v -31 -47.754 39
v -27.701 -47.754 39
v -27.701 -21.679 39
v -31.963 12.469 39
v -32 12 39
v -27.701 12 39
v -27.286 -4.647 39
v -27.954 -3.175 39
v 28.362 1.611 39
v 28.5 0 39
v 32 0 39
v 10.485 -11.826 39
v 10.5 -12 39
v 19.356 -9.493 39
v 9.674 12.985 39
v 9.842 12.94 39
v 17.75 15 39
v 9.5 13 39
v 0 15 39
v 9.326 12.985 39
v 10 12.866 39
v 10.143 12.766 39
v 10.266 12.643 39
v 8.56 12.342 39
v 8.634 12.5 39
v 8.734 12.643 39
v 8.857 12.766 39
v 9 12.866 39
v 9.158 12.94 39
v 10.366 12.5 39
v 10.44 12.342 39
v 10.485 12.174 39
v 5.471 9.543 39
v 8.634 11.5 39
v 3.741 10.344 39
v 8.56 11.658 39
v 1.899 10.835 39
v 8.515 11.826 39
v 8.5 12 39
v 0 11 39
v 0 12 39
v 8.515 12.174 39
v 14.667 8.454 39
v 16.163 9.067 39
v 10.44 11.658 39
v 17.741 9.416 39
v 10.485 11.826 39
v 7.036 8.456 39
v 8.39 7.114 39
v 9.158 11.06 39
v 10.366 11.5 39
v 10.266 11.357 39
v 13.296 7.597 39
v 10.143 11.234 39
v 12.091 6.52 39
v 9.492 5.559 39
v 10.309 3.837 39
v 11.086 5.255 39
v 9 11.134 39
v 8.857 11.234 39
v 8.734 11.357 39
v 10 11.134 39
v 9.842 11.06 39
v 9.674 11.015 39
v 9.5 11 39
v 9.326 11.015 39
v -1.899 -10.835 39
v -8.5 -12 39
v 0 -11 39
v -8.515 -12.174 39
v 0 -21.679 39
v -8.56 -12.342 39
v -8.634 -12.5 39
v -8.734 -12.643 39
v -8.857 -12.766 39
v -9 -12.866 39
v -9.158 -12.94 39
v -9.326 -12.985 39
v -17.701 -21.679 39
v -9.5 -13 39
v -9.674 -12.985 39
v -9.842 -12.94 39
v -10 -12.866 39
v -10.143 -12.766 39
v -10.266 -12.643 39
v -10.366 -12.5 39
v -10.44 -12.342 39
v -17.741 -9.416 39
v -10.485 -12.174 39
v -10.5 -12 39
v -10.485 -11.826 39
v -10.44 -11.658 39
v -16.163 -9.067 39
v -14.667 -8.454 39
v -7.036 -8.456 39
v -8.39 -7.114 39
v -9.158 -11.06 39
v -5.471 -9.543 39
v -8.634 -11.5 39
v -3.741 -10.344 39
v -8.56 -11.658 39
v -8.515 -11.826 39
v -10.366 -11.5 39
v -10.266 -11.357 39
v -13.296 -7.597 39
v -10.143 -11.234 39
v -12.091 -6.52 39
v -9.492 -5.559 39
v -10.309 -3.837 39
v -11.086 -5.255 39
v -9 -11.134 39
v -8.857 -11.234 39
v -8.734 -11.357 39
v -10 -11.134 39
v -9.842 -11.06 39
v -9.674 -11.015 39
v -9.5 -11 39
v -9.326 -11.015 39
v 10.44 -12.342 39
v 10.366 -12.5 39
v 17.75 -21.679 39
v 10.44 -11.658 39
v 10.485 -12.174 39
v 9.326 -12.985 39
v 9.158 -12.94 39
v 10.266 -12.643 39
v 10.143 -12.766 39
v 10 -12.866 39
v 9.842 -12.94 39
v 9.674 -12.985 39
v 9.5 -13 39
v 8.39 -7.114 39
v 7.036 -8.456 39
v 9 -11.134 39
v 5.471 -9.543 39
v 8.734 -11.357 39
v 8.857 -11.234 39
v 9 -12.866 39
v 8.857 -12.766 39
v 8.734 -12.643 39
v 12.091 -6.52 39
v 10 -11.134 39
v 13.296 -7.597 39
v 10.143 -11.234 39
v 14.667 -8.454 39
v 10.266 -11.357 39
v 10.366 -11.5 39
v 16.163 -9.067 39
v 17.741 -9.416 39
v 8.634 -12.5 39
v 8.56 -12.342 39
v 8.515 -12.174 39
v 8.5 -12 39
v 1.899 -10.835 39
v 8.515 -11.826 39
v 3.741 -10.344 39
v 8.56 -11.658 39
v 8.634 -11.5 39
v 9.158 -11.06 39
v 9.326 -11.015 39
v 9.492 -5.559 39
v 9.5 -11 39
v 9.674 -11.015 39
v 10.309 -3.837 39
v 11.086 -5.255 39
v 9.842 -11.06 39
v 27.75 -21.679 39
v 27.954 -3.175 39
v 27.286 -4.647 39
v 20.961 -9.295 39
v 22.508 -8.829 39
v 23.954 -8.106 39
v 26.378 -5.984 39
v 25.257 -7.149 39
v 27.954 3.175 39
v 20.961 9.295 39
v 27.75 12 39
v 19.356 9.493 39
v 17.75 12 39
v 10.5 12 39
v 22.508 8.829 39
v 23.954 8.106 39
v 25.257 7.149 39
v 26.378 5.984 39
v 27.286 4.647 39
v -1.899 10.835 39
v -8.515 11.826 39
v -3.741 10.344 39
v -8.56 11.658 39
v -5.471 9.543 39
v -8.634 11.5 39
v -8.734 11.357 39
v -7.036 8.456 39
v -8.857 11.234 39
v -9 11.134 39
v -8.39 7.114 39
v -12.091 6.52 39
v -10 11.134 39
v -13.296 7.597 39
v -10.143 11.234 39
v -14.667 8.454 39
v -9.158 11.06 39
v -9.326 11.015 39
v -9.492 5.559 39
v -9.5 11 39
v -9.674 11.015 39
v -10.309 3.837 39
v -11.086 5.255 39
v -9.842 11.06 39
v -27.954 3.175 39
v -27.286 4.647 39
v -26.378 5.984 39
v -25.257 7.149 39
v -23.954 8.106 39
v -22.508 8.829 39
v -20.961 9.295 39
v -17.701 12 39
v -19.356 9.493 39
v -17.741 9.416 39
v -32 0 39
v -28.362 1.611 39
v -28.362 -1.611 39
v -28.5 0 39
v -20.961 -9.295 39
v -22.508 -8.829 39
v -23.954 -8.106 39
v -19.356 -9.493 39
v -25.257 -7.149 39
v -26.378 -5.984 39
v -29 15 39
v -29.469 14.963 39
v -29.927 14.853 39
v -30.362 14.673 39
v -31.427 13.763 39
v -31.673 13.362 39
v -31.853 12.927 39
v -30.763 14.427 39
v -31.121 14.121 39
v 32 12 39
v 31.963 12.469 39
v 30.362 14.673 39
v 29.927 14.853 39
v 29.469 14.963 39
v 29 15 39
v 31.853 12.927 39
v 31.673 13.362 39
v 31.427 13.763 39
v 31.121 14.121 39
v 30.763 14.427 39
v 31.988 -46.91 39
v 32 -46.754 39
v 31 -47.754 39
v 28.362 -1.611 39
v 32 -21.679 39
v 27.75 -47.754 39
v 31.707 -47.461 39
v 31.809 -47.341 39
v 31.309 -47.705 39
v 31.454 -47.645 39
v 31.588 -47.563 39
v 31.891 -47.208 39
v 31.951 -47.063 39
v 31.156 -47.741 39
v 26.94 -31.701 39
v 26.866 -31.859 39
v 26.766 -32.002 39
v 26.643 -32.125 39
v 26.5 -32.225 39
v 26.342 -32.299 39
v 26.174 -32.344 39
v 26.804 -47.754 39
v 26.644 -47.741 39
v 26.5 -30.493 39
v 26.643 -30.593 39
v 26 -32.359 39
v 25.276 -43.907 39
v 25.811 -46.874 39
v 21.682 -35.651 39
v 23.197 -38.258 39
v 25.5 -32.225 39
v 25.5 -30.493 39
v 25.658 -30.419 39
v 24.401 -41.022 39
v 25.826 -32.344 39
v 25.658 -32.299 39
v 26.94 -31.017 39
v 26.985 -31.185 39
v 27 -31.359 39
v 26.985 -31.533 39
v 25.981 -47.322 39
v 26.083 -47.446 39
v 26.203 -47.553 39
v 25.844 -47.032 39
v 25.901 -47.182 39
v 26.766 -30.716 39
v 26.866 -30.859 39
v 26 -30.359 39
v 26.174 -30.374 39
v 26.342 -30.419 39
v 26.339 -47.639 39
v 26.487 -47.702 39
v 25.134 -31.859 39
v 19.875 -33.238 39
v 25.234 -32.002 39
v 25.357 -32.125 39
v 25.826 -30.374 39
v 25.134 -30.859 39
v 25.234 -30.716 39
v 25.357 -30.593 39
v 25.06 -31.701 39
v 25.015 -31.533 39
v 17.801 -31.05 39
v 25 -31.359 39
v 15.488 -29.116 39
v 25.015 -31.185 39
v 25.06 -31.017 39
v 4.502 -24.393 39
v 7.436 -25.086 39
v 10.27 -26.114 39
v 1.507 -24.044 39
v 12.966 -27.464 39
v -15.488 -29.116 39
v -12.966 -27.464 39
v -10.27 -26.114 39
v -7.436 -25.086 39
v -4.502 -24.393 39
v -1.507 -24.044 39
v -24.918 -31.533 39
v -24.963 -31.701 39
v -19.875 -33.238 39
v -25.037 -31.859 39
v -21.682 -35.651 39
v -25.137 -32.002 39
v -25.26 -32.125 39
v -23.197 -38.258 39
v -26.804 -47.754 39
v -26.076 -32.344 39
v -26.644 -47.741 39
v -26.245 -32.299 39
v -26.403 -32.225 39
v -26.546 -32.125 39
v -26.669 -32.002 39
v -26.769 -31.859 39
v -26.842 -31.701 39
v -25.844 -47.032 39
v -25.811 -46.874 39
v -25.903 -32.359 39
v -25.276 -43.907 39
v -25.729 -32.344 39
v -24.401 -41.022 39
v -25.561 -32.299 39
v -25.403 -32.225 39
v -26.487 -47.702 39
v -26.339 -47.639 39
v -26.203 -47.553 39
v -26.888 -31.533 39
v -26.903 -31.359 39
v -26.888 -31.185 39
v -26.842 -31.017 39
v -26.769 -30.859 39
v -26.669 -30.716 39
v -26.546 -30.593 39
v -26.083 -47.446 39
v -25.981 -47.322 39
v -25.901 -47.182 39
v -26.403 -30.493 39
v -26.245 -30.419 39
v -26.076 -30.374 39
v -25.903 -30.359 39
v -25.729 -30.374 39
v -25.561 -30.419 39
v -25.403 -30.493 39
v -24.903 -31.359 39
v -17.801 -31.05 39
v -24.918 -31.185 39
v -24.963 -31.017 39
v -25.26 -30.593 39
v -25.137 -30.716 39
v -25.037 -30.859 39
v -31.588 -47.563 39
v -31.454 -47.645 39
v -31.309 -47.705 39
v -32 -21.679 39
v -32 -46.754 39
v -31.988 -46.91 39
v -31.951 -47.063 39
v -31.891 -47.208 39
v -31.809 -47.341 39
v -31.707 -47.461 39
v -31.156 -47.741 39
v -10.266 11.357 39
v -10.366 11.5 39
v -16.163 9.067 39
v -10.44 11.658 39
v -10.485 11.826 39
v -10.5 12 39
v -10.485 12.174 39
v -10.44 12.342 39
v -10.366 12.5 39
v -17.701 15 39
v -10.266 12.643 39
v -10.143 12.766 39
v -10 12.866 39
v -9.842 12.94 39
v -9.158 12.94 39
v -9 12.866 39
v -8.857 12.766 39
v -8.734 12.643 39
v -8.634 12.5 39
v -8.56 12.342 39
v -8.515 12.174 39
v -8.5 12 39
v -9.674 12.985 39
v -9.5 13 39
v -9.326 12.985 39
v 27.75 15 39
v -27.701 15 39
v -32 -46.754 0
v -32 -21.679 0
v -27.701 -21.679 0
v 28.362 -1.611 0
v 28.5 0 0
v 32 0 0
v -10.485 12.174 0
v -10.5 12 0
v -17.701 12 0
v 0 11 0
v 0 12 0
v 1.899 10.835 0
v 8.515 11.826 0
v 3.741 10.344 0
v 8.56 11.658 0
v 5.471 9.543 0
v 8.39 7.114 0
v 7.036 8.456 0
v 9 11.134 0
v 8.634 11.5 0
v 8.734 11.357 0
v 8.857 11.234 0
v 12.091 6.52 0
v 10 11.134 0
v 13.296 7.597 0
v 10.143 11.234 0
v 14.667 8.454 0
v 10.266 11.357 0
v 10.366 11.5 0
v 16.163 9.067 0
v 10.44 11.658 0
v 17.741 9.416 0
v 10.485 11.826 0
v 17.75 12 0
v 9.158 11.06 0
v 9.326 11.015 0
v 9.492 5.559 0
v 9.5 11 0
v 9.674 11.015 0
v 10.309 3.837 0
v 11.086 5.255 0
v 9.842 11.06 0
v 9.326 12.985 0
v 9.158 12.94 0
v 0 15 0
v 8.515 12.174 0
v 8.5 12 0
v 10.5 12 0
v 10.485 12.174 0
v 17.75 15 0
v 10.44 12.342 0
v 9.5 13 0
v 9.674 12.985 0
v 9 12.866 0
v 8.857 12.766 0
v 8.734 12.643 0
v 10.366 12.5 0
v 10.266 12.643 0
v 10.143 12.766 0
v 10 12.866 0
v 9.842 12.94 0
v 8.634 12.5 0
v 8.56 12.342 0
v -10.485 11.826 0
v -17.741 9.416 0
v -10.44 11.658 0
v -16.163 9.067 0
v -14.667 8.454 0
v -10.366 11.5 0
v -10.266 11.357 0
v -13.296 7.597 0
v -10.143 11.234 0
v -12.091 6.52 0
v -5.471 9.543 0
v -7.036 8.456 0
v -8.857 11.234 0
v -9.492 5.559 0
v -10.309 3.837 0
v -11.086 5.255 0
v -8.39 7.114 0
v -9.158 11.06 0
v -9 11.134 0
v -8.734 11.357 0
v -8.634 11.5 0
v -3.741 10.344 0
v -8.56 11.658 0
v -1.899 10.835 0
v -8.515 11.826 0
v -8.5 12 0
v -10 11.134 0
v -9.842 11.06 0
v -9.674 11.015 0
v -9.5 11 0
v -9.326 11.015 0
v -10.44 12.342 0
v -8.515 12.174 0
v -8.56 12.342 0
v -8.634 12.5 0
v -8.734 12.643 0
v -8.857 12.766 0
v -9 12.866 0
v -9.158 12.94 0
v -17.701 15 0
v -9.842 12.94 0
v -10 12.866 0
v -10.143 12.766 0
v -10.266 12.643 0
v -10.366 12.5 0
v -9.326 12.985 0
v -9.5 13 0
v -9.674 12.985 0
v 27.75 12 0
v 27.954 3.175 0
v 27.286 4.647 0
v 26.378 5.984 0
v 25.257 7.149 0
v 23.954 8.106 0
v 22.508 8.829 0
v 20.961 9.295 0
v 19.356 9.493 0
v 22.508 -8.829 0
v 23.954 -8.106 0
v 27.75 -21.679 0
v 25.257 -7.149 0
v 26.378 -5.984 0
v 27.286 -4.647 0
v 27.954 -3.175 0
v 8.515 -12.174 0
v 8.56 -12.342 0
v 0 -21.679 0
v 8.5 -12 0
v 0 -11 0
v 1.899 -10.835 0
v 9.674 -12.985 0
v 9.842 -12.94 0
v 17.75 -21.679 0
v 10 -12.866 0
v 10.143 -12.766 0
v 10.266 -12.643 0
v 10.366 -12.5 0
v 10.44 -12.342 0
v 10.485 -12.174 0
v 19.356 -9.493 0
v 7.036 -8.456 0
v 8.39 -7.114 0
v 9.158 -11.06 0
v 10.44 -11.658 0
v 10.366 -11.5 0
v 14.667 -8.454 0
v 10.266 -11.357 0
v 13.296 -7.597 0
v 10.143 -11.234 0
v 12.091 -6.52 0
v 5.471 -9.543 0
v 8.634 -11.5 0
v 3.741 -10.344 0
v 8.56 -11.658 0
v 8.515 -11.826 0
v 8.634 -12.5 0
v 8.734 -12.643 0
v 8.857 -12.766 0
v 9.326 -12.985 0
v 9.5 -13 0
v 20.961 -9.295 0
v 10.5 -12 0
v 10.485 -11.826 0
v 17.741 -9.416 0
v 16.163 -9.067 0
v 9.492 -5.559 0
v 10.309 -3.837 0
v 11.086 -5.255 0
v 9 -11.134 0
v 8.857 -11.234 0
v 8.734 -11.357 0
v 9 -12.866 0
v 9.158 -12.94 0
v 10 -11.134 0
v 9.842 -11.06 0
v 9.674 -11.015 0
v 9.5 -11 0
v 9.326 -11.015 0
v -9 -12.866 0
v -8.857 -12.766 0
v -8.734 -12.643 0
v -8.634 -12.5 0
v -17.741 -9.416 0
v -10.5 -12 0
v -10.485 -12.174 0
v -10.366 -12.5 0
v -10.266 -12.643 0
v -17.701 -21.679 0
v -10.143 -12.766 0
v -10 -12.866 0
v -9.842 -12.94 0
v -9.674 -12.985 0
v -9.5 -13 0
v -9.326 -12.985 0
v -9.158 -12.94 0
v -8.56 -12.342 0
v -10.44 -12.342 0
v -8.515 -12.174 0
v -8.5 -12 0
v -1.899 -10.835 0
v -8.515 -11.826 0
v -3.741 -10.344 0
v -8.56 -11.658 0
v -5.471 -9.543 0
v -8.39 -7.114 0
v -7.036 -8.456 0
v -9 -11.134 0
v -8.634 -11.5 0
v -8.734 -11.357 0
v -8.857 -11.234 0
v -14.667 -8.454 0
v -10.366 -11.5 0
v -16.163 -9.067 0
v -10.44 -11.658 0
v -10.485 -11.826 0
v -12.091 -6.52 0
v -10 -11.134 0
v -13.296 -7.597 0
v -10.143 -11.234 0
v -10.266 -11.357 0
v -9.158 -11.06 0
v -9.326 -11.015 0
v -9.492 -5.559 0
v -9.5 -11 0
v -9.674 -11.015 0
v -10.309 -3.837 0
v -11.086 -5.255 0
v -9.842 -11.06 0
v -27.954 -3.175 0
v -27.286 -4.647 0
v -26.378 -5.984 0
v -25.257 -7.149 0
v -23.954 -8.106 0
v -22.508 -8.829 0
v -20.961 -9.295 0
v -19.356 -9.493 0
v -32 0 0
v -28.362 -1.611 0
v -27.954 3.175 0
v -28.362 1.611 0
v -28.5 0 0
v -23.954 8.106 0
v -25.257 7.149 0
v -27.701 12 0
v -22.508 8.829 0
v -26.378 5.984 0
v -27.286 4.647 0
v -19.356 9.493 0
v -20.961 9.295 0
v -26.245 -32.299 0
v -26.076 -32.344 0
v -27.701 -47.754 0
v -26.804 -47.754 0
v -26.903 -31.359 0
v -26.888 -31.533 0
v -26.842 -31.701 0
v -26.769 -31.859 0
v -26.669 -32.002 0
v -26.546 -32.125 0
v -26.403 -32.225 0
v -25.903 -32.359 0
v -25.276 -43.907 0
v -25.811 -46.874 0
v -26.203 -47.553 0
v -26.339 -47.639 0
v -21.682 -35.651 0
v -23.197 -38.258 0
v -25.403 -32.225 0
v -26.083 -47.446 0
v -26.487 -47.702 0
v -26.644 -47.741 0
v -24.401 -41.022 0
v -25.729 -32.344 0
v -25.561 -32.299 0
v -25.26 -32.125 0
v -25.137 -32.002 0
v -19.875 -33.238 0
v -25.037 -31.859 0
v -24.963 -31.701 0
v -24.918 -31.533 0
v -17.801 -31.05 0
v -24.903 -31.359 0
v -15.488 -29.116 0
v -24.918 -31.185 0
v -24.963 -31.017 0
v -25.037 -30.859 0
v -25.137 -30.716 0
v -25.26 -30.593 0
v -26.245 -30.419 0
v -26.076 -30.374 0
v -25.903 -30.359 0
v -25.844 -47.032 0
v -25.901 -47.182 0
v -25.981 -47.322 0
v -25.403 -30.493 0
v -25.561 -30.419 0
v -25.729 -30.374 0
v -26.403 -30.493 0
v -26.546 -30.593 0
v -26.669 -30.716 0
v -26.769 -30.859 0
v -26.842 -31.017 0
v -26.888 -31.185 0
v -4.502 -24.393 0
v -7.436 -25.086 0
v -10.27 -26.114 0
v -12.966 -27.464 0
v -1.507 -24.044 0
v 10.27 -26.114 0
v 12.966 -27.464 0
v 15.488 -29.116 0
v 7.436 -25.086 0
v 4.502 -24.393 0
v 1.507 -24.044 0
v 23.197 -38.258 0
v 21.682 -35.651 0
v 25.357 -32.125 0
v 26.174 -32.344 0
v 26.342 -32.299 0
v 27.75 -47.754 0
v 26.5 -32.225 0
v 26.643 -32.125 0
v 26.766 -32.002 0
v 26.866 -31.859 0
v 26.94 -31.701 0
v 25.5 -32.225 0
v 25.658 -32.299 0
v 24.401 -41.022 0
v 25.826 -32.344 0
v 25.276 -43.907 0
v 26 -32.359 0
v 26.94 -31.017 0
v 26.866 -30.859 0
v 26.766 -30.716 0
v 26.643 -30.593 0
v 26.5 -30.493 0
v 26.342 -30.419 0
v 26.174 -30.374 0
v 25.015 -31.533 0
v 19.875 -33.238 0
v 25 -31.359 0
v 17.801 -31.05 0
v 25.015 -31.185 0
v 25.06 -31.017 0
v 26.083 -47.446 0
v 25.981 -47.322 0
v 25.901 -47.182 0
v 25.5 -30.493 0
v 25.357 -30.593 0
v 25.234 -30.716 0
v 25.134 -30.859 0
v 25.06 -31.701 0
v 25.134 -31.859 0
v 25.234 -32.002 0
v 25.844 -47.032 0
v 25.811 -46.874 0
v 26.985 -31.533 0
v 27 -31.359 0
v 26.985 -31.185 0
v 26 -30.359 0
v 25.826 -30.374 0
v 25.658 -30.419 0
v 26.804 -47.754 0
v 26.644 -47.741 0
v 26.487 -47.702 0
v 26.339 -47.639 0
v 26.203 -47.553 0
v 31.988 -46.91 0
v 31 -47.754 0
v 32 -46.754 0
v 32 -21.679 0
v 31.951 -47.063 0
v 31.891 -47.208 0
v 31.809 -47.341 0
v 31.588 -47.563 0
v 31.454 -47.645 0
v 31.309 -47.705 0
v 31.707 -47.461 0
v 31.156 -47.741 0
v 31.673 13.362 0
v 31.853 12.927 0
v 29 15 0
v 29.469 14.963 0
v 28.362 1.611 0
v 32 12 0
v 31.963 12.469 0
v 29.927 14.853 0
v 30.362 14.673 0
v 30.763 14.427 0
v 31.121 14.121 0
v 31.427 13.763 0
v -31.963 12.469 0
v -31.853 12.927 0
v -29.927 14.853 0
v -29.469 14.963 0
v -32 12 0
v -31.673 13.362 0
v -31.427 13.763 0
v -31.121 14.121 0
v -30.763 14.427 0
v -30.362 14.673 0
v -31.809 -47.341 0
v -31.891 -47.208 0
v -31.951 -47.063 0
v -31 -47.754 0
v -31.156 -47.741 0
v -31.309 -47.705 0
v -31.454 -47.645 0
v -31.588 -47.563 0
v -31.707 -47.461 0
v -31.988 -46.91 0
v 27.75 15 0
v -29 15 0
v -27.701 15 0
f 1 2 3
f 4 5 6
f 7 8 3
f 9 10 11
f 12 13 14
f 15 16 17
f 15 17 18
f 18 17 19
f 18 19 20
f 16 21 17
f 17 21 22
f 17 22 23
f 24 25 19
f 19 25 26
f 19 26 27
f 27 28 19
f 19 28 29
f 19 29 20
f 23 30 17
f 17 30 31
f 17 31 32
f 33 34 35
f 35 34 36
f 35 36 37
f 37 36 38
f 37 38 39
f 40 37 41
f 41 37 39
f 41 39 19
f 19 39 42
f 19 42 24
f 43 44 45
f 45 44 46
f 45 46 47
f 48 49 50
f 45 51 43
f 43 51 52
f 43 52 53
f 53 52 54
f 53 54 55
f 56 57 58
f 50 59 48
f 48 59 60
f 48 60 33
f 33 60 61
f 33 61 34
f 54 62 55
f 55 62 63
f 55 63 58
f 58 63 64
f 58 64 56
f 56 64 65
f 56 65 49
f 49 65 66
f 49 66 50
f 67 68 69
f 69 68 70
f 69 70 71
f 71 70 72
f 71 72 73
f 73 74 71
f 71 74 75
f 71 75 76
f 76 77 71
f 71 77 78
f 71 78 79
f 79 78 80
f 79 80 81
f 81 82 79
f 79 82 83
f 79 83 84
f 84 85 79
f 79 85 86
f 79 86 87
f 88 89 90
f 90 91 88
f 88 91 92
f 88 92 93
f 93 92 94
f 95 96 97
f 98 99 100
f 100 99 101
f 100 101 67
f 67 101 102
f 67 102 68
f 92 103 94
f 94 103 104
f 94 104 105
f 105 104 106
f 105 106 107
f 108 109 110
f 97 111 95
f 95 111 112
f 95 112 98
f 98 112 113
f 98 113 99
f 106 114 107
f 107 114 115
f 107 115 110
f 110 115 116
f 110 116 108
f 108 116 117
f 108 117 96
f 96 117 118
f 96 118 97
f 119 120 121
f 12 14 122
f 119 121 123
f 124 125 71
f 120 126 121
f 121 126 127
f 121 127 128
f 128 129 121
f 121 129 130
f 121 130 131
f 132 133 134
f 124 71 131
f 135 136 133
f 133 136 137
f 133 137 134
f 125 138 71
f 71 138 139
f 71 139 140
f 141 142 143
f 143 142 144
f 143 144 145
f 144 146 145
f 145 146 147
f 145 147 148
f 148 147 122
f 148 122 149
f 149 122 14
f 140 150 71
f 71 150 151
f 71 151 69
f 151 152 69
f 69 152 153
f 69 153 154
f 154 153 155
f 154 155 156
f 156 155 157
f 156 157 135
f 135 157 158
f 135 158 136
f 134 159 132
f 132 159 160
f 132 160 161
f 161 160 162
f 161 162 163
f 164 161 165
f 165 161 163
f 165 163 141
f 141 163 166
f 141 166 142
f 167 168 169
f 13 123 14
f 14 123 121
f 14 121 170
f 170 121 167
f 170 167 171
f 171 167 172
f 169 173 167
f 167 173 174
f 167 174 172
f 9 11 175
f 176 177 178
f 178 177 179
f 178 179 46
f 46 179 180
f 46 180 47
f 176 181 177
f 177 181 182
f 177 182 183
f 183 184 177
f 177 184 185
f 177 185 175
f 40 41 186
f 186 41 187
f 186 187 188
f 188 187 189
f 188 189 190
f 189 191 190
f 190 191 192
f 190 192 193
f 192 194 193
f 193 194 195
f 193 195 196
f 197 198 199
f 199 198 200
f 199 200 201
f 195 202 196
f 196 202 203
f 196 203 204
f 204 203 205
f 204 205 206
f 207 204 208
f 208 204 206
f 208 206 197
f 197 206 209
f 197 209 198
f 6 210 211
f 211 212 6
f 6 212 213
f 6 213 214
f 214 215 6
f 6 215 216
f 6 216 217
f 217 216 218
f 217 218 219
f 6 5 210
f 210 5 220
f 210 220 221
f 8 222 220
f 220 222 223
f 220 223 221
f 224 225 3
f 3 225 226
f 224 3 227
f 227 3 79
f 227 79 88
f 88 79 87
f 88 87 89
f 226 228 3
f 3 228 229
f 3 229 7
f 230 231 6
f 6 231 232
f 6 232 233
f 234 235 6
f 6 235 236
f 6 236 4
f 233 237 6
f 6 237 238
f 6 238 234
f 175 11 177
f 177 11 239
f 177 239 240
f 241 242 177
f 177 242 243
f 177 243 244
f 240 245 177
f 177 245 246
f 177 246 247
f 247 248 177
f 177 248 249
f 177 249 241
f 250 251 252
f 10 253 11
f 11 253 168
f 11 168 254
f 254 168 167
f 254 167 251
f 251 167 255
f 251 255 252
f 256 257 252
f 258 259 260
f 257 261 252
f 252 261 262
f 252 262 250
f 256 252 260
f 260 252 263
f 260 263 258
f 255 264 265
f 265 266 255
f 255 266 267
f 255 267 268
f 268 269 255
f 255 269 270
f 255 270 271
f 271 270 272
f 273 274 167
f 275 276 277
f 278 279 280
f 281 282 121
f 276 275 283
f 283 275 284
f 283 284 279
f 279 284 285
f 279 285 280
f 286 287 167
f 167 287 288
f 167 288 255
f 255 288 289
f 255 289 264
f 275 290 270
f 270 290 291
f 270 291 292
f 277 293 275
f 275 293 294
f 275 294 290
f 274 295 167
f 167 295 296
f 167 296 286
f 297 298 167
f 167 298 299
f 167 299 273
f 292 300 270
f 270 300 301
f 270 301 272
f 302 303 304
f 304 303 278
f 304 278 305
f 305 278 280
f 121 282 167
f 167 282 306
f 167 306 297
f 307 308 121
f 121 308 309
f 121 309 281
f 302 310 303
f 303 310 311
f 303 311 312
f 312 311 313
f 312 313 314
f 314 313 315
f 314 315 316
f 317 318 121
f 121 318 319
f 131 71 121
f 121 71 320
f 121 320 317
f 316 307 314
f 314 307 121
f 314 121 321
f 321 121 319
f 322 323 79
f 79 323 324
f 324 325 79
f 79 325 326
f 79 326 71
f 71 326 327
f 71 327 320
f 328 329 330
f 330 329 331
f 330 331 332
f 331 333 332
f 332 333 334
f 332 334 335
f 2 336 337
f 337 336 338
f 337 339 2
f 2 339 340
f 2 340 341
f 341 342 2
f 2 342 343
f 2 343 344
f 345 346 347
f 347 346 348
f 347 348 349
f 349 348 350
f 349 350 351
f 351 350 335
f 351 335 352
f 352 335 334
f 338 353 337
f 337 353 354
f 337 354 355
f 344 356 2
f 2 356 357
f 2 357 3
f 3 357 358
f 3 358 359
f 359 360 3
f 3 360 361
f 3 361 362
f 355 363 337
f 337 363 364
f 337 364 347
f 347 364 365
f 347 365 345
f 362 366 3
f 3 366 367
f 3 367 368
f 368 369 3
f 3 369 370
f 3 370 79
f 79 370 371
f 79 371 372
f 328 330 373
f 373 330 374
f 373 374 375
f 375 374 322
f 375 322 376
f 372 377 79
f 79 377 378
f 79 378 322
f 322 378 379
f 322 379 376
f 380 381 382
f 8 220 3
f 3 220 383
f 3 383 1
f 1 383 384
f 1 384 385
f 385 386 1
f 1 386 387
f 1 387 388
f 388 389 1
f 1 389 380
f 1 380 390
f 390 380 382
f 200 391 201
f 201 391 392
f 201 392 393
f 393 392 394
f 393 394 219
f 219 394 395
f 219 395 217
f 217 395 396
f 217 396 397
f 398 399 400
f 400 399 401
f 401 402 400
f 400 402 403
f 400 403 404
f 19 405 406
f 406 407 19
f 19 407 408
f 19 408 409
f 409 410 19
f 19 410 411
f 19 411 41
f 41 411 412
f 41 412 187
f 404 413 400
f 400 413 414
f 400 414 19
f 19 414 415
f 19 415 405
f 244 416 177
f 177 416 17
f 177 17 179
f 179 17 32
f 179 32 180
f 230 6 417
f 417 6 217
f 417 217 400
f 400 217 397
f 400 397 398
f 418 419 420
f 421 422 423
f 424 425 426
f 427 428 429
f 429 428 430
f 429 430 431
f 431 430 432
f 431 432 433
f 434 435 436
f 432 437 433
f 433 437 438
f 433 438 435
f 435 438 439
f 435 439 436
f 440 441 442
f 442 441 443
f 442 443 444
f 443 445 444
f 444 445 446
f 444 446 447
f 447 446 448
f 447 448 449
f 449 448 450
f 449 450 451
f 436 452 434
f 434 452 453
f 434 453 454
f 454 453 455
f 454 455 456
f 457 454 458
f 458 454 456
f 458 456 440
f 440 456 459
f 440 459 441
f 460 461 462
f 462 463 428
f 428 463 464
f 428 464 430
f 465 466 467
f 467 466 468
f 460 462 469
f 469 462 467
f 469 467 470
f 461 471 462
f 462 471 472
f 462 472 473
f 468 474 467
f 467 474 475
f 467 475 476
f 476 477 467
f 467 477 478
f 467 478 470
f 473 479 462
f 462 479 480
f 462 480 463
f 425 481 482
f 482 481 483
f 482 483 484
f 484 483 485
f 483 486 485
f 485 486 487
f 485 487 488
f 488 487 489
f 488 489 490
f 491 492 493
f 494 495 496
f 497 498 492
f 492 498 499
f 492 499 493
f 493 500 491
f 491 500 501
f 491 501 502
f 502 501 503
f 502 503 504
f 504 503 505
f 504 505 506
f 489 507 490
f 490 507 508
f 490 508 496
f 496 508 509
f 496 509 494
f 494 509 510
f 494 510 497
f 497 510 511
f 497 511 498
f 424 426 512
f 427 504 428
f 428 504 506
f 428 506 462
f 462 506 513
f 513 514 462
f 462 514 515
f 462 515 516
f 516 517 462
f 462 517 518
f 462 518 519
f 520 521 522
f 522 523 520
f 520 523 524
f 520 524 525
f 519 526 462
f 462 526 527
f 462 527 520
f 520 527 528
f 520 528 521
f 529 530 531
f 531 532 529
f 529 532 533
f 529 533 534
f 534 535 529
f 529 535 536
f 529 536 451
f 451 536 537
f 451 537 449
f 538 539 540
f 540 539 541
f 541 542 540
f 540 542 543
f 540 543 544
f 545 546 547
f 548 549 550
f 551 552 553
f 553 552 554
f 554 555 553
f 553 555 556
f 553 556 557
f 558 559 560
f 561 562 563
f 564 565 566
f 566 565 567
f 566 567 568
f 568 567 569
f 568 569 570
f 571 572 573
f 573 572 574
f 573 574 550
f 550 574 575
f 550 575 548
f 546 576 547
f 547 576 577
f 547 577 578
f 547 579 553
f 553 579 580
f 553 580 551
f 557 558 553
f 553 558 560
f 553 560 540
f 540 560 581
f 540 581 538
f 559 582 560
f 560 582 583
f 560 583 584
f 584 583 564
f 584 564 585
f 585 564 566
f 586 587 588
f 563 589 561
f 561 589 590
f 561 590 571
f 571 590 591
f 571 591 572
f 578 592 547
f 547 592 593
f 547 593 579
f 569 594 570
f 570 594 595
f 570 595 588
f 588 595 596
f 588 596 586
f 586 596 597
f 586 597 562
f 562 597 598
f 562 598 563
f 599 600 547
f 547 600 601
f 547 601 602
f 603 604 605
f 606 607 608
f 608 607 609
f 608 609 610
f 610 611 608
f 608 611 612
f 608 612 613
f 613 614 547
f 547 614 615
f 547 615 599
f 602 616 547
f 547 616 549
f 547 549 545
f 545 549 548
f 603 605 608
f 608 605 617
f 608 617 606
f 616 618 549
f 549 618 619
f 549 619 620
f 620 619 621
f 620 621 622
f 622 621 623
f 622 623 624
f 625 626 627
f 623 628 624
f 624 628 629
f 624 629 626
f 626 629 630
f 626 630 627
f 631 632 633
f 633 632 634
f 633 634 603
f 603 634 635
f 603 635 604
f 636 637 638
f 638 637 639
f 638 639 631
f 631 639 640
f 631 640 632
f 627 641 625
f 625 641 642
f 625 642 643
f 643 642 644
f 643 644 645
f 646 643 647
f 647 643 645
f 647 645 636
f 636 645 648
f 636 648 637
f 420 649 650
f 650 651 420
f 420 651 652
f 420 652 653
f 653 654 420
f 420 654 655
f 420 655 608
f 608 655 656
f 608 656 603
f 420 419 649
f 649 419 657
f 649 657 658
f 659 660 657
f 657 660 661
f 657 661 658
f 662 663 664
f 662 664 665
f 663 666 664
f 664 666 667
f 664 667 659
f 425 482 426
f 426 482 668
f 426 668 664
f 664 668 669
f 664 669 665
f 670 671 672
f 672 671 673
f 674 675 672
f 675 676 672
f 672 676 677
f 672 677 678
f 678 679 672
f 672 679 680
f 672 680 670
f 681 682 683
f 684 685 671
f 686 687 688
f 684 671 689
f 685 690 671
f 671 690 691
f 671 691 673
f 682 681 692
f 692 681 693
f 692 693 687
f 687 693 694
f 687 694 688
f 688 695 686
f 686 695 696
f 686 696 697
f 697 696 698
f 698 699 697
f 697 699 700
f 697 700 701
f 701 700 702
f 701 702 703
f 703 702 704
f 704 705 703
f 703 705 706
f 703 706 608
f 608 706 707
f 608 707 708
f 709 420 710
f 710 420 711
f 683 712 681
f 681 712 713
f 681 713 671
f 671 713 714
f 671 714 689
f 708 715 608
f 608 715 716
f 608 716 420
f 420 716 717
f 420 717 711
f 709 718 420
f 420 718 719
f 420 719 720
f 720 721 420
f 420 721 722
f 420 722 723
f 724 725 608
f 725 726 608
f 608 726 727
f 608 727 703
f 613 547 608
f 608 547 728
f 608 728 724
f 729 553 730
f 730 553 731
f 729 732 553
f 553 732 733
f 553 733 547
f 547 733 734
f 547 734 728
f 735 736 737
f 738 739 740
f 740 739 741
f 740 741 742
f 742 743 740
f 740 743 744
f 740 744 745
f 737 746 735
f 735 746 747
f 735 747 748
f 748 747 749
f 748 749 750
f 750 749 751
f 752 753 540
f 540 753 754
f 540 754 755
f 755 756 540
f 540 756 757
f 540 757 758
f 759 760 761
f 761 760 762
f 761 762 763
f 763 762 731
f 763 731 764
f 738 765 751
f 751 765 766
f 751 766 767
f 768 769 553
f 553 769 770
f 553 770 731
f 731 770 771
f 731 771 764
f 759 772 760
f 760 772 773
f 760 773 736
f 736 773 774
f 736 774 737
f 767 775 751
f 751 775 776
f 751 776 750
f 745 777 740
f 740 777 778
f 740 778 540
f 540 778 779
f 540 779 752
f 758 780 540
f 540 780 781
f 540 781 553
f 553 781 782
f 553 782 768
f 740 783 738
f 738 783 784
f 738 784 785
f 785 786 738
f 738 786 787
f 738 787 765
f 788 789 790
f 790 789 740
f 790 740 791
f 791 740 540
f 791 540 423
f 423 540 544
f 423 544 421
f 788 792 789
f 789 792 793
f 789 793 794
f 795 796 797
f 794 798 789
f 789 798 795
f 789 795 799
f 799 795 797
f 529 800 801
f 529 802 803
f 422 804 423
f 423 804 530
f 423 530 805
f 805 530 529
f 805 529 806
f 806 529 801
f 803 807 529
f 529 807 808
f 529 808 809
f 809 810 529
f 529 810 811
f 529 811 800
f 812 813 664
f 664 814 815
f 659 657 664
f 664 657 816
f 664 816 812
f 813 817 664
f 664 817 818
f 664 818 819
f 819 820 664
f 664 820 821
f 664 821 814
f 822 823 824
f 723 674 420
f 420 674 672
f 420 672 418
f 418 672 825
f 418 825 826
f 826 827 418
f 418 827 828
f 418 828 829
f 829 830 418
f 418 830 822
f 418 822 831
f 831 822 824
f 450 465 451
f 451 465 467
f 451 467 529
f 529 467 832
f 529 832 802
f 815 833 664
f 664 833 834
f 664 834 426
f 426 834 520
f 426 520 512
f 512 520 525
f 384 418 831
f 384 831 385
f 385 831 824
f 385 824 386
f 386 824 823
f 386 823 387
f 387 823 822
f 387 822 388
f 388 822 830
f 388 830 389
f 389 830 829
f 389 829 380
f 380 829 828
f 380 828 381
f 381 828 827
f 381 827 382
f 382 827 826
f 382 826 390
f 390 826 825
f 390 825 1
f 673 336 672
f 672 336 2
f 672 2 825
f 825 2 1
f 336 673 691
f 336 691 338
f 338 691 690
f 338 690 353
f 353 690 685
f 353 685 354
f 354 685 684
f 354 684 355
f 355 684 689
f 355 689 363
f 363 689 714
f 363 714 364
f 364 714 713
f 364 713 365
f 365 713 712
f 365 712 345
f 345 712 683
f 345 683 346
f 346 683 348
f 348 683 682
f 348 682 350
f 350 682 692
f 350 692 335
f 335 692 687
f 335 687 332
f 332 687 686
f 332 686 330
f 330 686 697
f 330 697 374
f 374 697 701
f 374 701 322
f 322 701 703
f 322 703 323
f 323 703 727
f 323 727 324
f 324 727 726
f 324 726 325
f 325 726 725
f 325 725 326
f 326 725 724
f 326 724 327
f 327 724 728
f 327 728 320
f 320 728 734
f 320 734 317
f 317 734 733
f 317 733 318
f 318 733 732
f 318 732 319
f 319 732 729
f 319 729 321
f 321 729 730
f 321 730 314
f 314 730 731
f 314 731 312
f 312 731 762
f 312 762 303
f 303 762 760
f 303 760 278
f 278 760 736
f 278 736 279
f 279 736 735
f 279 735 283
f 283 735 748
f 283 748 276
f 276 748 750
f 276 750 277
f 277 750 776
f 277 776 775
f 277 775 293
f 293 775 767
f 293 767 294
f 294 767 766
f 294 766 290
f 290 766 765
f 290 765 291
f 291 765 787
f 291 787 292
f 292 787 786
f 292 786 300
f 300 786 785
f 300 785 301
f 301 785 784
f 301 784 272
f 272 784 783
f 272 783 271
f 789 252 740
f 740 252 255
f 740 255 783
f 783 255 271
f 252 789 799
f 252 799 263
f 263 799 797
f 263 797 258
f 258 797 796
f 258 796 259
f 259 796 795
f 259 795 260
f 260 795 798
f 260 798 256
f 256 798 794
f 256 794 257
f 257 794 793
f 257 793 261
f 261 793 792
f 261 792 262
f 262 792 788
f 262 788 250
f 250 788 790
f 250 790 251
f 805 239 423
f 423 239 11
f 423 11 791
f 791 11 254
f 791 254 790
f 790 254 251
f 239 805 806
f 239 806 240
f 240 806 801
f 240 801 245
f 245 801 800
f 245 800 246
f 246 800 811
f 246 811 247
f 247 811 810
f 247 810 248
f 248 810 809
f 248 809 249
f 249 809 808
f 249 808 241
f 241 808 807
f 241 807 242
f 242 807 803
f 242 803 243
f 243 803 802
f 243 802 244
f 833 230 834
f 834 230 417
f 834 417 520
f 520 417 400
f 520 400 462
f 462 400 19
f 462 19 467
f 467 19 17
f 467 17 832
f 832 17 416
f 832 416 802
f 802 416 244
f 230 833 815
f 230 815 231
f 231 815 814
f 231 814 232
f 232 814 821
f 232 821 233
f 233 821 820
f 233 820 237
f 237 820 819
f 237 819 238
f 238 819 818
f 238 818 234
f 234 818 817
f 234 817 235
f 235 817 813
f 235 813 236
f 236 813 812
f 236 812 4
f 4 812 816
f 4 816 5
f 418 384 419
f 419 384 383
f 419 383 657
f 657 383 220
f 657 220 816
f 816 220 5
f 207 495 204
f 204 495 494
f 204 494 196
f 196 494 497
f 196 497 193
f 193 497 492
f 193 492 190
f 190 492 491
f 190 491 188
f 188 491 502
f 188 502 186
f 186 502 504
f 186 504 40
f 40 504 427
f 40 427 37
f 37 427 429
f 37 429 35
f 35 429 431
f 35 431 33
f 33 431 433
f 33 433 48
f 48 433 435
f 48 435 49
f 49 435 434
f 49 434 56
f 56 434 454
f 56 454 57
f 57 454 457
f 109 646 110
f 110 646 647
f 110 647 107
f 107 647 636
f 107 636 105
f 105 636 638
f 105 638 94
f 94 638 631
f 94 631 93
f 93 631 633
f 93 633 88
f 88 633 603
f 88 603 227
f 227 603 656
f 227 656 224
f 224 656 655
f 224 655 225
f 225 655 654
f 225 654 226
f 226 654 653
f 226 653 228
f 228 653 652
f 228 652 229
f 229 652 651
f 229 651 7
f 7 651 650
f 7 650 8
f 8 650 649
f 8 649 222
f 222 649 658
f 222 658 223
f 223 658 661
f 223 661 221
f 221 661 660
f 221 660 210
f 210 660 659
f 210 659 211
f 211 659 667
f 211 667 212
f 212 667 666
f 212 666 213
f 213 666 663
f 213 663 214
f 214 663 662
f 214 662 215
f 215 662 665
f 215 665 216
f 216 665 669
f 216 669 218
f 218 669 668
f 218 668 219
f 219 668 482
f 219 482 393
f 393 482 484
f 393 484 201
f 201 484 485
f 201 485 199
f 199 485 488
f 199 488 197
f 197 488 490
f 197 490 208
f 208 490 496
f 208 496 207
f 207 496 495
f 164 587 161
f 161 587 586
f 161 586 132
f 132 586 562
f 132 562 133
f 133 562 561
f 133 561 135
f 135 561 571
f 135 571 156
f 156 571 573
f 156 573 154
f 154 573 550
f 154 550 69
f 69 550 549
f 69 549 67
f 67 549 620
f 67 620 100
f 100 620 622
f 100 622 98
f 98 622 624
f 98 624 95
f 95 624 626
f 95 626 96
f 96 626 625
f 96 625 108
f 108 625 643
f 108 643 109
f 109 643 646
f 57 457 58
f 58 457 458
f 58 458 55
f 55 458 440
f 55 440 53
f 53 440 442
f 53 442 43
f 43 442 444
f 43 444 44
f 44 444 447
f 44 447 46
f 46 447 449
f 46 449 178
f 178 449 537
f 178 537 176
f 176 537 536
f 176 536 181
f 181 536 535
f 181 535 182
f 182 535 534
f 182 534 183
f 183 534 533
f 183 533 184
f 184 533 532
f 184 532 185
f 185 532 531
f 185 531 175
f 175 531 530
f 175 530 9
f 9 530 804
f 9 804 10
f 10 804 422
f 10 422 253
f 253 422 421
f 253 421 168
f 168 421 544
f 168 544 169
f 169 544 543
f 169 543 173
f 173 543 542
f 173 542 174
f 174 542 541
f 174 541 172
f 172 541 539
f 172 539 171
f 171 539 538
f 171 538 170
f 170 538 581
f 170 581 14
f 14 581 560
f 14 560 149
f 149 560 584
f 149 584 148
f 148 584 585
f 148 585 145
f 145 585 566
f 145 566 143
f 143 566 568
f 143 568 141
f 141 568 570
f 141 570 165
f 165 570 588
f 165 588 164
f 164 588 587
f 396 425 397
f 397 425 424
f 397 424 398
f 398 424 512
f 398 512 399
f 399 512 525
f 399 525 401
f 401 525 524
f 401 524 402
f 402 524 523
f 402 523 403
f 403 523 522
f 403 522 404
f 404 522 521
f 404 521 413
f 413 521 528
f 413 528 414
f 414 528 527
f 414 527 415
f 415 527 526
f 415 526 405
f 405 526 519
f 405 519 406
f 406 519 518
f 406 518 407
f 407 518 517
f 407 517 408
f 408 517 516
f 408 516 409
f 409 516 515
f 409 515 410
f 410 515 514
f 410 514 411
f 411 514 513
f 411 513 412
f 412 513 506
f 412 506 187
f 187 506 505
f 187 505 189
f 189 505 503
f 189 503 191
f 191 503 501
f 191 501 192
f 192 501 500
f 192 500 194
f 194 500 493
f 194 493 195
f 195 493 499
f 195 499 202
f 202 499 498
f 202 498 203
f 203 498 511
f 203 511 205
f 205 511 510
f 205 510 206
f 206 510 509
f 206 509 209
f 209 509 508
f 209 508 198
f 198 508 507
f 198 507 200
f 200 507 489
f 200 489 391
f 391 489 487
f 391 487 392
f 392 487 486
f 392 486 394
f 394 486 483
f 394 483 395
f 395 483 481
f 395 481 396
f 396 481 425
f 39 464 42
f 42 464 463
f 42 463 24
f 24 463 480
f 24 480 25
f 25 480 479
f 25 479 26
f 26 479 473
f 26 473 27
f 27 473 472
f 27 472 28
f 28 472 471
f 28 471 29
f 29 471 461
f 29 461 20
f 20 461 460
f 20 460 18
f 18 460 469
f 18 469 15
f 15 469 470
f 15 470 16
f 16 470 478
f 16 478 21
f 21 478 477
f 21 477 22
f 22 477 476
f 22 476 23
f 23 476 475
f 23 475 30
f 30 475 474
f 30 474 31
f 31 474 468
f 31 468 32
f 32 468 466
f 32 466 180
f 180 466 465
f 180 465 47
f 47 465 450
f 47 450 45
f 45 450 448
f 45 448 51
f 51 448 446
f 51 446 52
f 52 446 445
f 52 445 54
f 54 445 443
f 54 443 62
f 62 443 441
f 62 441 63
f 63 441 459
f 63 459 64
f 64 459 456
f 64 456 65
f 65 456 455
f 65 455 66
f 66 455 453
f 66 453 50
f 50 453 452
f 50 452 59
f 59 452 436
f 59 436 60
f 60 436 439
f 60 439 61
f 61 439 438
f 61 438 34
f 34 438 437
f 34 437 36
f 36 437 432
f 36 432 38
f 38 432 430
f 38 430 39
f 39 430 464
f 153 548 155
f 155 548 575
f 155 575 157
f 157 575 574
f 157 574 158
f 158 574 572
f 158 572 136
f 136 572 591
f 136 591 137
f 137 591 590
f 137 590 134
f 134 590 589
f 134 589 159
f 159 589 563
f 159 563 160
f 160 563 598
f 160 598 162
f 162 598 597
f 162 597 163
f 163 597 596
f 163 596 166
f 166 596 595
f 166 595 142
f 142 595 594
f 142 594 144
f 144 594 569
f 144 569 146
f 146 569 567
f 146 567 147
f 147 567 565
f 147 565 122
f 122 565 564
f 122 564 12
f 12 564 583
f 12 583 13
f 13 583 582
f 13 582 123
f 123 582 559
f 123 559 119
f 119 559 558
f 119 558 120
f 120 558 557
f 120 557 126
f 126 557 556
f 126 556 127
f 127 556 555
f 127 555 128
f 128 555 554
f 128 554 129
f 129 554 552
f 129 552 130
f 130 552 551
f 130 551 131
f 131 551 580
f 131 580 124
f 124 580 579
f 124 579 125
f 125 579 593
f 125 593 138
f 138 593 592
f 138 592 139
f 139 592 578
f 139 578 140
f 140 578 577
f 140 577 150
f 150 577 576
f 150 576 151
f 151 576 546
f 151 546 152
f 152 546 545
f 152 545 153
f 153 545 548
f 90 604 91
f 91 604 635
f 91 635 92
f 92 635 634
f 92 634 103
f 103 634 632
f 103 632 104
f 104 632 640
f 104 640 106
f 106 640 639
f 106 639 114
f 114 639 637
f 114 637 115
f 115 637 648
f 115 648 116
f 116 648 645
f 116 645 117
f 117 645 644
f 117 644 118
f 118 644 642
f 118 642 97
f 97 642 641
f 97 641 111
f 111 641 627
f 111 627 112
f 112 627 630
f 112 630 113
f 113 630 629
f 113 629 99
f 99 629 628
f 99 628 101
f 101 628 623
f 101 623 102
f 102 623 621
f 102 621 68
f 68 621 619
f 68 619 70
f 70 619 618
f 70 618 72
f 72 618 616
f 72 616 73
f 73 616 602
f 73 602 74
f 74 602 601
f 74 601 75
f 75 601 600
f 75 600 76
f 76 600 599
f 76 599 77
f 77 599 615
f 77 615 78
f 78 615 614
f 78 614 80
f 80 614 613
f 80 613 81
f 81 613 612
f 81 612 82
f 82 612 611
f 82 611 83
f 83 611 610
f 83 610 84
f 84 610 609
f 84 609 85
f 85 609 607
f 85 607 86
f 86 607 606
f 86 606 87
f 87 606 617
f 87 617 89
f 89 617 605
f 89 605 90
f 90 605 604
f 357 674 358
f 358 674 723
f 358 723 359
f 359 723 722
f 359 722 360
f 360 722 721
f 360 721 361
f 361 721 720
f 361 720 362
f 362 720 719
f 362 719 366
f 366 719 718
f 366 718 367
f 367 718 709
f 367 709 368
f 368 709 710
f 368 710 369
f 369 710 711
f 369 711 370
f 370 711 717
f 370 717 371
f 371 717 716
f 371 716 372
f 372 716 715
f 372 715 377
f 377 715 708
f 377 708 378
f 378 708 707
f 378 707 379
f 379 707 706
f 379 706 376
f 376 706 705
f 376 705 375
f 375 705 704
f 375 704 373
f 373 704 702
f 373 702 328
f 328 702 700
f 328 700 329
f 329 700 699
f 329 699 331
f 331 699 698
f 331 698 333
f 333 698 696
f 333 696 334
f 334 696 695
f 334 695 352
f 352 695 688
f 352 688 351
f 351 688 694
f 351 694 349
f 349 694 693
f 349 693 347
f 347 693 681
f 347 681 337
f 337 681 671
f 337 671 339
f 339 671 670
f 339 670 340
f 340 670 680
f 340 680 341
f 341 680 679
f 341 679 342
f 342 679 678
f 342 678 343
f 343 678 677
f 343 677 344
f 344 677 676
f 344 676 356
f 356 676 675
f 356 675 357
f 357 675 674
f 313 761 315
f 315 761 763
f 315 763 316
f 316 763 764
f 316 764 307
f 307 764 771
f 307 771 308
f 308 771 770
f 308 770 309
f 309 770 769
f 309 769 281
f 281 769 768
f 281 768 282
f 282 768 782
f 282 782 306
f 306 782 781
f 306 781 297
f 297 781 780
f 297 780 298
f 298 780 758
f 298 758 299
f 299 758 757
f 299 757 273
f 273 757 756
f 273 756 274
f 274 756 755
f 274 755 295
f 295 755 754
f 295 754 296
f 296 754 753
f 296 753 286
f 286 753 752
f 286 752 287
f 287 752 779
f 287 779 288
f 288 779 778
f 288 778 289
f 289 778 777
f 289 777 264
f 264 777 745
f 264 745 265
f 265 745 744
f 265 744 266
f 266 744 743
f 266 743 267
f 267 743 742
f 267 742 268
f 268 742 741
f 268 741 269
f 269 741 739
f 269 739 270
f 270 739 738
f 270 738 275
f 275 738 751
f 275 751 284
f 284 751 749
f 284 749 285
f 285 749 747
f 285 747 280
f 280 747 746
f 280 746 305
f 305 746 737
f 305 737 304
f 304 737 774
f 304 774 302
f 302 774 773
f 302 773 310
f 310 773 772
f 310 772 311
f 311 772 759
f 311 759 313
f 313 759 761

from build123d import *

# Parameters (mm, degrees)
SKETCH_1_R      = 1
EXTRUDE_1_DEPTH = 39


with BuildPart() as part:
    # Эскиз1 → Бобышка-Вытянуть1 (new body)
    with BuildSketch(Plane.XY):
        with BuildLine():
            Line((-32, -17), (-32, 12))
            ThreePointArc((-32, 12), (-31.121320344, 14.121320344), (-29, 15))
            Line((-29, 15), (29, 15))
            ThreePointArc((29, 15), (31.121320344, 14.121320344), (32, 12))
            Line((32, 12), (32, -17))
            Line((32, -17), (32, -46.753646645))
            ThreePointArc((32, -46.753646645), (31.707106781, -47.460753426), (31, -47.753646645))
            Line((31, -47.753646645), (26.804126359, -47.753646645))
            ThreePointArc((26.804126359, -47.753646645), (26.140890093, -47.50205673), (25.811380939, -46.873881955))
            ThreePointArc((25.811380939, -46.873881955), (0, -24), (-25.811380939, -46.873881955))
            ThreePointArc((-25.811380939, -46.873881955), (-26.140890093, -47.50205673), (-26.804126359, -47.753646645))
            Line((-26.804126359, -47.753646645), (-31, -47.753646645))
            ThreePointArc((-31, -47.753646645), (-31.707106781, -47.460753426), (-32, -46.753646645))
            Line((-32, -46.753646645), (-32, -17))
        make_face()
        with Locations((-9.5, 12)):
            Circle(SKETCH_1_R, mode=Mode.SUBTRACT)
        with Locations((9.5, 12)):
            Circle(SKETCH_1_R, mode=Mode.SUBTRACT)
        with Locations((9.5, -12)):
            Circle(SKETCH_1_R, mode=Mode.SUBTRACT)
        with Locations((-9.5, -12)):
            Circle(SKETCH_1_R, mode=Mode.SUBTRACT)
        with Locations((-25.902777778, -31.358962601)):
            Circle(SKETCH_1_R, mode=Mode.SUBTRACT)
        with Locations((26, -31.358962601)):
            Circle(SKETCH_1_R, mode=Mode.SUBTRACT)
        with BuildLine():
            ThreePointArc((-10.309210526, -3.836688458), (0, -11), (10.309210526, -3.836688458))
            ThreePointArc((10.309210526, -3.836688458), (28.5, 0), (10.309210526, 3.836688458))
            ThreePointArc((10.309210526, 3.836688458), (0, 11), (-10.309210526, 3.836688458))
            ThreePointArc((-10.309210526, 3.836688458), (-28.5, 0), (-10.309210526, -3.836688458))
        make_face(mode=Mode.SUBTRACT)
    extrude(amount=EXTRUDE_1_DEPTH)


solid = part.part
